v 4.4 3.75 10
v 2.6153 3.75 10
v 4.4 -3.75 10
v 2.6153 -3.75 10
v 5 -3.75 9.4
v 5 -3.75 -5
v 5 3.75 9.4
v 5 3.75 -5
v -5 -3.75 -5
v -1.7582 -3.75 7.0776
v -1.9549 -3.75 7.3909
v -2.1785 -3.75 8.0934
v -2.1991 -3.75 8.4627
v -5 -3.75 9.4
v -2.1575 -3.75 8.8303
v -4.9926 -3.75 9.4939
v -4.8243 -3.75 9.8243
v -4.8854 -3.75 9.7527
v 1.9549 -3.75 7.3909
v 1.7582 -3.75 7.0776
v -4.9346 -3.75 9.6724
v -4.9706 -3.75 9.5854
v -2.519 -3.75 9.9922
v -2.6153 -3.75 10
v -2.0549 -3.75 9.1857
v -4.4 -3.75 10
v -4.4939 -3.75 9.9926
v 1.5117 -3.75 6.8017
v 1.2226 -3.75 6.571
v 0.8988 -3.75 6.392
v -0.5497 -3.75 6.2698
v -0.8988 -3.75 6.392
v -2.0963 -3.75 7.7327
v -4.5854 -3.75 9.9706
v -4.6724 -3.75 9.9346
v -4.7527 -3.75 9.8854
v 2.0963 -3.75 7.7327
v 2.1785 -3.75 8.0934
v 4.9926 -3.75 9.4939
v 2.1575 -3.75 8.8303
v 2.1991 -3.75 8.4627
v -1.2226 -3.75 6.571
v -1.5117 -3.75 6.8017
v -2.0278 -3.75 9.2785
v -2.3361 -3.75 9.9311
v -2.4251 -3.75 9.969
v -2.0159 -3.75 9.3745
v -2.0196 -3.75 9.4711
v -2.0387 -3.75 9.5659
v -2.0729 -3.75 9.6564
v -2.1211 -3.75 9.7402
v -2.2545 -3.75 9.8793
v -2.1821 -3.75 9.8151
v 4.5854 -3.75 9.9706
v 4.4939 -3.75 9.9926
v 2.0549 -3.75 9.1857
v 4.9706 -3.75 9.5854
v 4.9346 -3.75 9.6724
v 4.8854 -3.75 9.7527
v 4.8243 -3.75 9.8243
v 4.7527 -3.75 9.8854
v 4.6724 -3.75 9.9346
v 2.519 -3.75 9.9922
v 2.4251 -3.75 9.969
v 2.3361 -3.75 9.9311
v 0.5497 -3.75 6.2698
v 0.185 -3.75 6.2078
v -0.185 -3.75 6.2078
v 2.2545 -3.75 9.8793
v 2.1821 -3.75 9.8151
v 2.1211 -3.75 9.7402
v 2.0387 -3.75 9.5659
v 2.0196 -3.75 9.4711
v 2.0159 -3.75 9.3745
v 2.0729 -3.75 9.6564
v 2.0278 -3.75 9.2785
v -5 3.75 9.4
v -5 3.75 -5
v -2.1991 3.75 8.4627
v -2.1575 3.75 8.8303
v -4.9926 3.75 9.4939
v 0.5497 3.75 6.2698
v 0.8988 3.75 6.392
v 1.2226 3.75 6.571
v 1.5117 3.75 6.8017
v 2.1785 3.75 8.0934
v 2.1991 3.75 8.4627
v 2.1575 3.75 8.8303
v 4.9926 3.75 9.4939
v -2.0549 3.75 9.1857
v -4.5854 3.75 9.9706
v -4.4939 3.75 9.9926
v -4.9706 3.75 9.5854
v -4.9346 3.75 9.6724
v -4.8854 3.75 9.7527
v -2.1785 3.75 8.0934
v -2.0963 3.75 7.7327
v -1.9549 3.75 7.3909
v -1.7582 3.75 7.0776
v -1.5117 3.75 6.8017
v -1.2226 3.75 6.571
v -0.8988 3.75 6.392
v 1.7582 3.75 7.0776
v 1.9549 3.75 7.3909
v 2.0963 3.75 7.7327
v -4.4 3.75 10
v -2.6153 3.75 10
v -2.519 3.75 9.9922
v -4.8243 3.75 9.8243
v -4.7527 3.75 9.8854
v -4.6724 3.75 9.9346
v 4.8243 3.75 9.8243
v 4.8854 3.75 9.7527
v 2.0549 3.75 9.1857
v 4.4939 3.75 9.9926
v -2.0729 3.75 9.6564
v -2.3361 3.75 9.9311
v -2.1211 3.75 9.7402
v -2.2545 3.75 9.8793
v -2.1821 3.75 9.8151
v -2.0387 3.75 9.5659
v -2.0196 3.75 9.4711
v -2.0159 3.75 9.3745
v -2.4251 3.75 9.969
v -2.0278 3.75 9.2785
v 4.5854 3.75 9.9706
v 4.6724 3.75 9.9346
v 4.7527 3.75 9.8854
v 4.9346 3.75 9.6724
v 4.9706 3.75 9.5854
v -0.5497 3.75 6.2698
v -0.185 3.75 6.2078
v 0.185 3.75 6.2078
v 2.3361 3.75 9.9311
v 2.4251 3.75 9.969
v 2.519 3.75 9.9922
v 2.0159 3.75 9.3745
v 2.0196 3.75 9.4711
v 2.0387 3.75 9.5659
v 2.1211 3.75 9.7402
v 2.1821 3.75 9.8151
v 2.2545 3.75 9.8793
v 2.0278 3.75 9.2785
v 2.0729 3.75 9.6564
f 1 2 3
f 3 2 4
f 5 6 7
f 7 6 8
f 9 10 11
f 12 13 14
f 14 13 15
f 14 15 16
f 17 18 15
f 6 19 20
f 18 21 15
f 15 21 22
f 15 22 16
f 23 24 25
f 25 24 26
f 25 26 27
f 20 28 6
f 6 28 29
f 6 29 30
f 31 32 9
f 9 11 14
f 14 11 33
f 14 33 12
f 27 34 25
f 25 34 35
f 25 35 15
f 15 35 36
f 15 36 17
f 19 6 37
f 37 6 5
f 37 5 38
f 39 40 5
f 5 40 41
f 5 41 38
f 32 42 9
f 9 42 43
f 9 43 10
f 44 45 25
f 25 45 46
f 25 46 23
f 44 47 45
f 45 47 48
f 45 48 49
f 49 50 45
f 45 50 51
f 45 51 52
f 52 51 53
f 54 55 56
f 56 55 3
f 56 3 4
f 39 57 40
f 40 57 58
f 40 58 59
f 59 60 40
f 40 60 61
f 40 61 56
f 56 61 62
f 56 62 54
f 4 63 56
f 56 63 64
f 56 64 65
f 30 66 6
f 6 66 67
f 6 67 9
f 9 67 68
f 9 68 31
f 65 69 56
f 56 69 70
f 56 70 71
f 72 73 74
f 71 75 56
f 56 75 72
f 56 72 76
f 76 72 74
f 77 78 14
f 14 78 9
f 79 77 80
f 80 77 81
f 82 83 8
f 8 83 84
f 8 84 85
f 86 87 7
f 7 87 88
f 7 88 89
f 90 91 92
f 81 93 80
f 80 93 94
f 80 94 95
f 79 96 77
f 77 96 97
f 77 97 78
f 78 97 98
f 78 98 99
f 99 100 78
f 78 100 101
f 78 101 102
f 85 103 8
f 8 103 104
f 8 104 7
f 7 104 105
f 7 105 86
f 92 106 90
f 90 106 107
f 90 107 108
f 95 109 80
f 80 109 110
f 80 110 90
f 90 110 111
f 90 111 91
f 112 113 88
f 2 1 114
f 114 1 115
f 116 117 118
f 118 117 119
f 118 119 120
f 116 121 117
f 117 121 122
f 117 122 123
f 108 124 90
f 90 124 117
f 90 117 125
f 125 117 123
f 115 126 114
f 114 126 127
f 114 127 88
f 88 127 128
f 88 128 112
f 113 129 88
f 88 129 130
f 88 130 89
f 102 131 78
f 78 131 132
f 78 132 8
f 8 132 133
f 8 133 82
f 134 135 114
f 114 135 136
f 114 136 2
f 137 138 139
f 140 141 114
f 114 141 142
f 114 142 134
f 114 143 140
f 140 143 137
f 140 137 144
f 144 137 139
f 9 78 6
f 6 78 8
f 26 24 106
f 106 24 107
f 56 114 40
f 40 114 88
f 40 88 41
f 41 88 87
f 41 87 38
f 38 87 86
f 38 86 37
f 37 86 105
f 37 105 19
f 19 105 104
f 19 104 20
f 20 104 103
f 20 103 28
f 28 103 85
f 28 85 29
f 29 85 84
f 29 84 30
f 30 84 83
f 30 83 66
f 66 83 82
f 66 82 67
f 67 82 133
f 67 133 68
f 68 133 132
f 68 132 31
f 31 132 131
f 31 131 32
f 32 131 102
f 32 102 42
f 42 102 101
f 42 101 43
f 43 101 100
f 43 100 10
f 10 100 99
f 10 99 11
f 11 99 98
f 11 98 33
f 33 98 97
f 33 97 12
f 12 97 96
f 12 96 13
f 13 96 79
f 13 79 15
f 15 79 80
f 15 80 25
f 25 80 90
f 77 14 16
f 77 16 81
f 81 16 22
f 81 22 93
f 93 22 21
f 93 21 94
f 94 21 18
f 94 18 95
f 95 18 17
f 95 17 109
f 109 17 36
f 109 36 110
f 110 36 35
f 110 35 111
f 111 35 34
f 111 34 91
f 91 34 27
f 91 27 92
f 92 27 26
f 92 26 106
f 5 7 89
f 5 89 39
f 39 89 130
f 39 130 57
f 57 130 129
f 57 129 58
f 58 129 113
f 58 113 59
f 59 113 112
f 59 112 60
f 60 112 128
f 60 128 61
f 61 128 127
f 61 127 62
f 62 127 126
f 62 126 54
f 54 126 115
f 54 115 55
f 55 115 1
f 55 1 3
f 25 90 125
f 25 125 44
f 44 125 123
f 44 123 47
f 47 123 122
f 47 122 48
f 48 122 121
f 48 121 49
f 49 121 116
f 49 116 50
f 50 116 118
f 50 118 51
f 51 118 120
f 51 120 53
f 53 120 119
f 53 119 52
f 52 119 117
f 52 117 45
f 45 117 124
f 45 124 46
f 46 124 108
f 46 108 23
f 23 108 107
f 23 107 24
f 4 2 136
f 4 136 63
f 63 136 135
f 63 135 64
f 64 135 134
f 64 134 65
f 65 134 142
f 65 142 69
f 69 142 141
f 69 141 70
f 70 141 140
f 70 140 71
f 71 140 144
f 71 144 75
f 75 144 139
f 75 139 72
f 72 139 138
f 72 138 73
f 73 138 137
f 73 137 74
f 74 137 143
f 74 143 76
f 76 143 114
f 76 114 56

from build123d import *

# Parameters (mm, degrees)
BOSS_EXTRUDE1_DEPTH      = 10
BOSS_EXTRUDE1_DEPTH_BACK = 5
SKETCH1_W                = 7.5
SKETCH1_H                = 10
SKETCH2_R                = 2.2
CUT_EXTRUDE1_DEPTH       = 14.462912018
FILLET1_R                = 0.6


with BuildPart() as part:
    # Sketch1 → Boss-Extrude1 (new, two sides: drawn at the far end of the back side and taken through both)
    with BuildSketch(Plane(origin=(0, 0, 0), x_dir=(0, 1, 0), z_dir=(0, 0, 1)).offset(-BOSS_EXTRUDE1_DEPTH_BACK)):
        Rectangle(SKETCH1_W, SKETCH1_H)
    extrude(amount=BOSS_EXTRUDE1_DEPTH + BOSS_EXTRUDE1_DEPTH_BACK)

    # Sketch2 → Cut-Extrude1 (cut, through all)
    with BuildSketch(Plane(origin=(0, 3.75, 0), x_dir=(-1, 0, 0), z_dir=(0, 1, 0))):
        with Locations((0, 8.4)):
            Circle(SKETCH2_R)
    extrude(amount=-CUT_EXTRUDE1_DEPTH, mode=Mode.SUBTRACT)

    # Fillet1
    fillet1_edges = [part.edges().sort_by_distance(p)[0] for p in [
        (-5, 0, 10),
        (5, 0, 10),
        (-1.509966887, 0, 10),
        (1.509966887, 0, 10),
    ]]
    fillet(fillet1_edges, radius=FILLET1_R)


solid = part.part
